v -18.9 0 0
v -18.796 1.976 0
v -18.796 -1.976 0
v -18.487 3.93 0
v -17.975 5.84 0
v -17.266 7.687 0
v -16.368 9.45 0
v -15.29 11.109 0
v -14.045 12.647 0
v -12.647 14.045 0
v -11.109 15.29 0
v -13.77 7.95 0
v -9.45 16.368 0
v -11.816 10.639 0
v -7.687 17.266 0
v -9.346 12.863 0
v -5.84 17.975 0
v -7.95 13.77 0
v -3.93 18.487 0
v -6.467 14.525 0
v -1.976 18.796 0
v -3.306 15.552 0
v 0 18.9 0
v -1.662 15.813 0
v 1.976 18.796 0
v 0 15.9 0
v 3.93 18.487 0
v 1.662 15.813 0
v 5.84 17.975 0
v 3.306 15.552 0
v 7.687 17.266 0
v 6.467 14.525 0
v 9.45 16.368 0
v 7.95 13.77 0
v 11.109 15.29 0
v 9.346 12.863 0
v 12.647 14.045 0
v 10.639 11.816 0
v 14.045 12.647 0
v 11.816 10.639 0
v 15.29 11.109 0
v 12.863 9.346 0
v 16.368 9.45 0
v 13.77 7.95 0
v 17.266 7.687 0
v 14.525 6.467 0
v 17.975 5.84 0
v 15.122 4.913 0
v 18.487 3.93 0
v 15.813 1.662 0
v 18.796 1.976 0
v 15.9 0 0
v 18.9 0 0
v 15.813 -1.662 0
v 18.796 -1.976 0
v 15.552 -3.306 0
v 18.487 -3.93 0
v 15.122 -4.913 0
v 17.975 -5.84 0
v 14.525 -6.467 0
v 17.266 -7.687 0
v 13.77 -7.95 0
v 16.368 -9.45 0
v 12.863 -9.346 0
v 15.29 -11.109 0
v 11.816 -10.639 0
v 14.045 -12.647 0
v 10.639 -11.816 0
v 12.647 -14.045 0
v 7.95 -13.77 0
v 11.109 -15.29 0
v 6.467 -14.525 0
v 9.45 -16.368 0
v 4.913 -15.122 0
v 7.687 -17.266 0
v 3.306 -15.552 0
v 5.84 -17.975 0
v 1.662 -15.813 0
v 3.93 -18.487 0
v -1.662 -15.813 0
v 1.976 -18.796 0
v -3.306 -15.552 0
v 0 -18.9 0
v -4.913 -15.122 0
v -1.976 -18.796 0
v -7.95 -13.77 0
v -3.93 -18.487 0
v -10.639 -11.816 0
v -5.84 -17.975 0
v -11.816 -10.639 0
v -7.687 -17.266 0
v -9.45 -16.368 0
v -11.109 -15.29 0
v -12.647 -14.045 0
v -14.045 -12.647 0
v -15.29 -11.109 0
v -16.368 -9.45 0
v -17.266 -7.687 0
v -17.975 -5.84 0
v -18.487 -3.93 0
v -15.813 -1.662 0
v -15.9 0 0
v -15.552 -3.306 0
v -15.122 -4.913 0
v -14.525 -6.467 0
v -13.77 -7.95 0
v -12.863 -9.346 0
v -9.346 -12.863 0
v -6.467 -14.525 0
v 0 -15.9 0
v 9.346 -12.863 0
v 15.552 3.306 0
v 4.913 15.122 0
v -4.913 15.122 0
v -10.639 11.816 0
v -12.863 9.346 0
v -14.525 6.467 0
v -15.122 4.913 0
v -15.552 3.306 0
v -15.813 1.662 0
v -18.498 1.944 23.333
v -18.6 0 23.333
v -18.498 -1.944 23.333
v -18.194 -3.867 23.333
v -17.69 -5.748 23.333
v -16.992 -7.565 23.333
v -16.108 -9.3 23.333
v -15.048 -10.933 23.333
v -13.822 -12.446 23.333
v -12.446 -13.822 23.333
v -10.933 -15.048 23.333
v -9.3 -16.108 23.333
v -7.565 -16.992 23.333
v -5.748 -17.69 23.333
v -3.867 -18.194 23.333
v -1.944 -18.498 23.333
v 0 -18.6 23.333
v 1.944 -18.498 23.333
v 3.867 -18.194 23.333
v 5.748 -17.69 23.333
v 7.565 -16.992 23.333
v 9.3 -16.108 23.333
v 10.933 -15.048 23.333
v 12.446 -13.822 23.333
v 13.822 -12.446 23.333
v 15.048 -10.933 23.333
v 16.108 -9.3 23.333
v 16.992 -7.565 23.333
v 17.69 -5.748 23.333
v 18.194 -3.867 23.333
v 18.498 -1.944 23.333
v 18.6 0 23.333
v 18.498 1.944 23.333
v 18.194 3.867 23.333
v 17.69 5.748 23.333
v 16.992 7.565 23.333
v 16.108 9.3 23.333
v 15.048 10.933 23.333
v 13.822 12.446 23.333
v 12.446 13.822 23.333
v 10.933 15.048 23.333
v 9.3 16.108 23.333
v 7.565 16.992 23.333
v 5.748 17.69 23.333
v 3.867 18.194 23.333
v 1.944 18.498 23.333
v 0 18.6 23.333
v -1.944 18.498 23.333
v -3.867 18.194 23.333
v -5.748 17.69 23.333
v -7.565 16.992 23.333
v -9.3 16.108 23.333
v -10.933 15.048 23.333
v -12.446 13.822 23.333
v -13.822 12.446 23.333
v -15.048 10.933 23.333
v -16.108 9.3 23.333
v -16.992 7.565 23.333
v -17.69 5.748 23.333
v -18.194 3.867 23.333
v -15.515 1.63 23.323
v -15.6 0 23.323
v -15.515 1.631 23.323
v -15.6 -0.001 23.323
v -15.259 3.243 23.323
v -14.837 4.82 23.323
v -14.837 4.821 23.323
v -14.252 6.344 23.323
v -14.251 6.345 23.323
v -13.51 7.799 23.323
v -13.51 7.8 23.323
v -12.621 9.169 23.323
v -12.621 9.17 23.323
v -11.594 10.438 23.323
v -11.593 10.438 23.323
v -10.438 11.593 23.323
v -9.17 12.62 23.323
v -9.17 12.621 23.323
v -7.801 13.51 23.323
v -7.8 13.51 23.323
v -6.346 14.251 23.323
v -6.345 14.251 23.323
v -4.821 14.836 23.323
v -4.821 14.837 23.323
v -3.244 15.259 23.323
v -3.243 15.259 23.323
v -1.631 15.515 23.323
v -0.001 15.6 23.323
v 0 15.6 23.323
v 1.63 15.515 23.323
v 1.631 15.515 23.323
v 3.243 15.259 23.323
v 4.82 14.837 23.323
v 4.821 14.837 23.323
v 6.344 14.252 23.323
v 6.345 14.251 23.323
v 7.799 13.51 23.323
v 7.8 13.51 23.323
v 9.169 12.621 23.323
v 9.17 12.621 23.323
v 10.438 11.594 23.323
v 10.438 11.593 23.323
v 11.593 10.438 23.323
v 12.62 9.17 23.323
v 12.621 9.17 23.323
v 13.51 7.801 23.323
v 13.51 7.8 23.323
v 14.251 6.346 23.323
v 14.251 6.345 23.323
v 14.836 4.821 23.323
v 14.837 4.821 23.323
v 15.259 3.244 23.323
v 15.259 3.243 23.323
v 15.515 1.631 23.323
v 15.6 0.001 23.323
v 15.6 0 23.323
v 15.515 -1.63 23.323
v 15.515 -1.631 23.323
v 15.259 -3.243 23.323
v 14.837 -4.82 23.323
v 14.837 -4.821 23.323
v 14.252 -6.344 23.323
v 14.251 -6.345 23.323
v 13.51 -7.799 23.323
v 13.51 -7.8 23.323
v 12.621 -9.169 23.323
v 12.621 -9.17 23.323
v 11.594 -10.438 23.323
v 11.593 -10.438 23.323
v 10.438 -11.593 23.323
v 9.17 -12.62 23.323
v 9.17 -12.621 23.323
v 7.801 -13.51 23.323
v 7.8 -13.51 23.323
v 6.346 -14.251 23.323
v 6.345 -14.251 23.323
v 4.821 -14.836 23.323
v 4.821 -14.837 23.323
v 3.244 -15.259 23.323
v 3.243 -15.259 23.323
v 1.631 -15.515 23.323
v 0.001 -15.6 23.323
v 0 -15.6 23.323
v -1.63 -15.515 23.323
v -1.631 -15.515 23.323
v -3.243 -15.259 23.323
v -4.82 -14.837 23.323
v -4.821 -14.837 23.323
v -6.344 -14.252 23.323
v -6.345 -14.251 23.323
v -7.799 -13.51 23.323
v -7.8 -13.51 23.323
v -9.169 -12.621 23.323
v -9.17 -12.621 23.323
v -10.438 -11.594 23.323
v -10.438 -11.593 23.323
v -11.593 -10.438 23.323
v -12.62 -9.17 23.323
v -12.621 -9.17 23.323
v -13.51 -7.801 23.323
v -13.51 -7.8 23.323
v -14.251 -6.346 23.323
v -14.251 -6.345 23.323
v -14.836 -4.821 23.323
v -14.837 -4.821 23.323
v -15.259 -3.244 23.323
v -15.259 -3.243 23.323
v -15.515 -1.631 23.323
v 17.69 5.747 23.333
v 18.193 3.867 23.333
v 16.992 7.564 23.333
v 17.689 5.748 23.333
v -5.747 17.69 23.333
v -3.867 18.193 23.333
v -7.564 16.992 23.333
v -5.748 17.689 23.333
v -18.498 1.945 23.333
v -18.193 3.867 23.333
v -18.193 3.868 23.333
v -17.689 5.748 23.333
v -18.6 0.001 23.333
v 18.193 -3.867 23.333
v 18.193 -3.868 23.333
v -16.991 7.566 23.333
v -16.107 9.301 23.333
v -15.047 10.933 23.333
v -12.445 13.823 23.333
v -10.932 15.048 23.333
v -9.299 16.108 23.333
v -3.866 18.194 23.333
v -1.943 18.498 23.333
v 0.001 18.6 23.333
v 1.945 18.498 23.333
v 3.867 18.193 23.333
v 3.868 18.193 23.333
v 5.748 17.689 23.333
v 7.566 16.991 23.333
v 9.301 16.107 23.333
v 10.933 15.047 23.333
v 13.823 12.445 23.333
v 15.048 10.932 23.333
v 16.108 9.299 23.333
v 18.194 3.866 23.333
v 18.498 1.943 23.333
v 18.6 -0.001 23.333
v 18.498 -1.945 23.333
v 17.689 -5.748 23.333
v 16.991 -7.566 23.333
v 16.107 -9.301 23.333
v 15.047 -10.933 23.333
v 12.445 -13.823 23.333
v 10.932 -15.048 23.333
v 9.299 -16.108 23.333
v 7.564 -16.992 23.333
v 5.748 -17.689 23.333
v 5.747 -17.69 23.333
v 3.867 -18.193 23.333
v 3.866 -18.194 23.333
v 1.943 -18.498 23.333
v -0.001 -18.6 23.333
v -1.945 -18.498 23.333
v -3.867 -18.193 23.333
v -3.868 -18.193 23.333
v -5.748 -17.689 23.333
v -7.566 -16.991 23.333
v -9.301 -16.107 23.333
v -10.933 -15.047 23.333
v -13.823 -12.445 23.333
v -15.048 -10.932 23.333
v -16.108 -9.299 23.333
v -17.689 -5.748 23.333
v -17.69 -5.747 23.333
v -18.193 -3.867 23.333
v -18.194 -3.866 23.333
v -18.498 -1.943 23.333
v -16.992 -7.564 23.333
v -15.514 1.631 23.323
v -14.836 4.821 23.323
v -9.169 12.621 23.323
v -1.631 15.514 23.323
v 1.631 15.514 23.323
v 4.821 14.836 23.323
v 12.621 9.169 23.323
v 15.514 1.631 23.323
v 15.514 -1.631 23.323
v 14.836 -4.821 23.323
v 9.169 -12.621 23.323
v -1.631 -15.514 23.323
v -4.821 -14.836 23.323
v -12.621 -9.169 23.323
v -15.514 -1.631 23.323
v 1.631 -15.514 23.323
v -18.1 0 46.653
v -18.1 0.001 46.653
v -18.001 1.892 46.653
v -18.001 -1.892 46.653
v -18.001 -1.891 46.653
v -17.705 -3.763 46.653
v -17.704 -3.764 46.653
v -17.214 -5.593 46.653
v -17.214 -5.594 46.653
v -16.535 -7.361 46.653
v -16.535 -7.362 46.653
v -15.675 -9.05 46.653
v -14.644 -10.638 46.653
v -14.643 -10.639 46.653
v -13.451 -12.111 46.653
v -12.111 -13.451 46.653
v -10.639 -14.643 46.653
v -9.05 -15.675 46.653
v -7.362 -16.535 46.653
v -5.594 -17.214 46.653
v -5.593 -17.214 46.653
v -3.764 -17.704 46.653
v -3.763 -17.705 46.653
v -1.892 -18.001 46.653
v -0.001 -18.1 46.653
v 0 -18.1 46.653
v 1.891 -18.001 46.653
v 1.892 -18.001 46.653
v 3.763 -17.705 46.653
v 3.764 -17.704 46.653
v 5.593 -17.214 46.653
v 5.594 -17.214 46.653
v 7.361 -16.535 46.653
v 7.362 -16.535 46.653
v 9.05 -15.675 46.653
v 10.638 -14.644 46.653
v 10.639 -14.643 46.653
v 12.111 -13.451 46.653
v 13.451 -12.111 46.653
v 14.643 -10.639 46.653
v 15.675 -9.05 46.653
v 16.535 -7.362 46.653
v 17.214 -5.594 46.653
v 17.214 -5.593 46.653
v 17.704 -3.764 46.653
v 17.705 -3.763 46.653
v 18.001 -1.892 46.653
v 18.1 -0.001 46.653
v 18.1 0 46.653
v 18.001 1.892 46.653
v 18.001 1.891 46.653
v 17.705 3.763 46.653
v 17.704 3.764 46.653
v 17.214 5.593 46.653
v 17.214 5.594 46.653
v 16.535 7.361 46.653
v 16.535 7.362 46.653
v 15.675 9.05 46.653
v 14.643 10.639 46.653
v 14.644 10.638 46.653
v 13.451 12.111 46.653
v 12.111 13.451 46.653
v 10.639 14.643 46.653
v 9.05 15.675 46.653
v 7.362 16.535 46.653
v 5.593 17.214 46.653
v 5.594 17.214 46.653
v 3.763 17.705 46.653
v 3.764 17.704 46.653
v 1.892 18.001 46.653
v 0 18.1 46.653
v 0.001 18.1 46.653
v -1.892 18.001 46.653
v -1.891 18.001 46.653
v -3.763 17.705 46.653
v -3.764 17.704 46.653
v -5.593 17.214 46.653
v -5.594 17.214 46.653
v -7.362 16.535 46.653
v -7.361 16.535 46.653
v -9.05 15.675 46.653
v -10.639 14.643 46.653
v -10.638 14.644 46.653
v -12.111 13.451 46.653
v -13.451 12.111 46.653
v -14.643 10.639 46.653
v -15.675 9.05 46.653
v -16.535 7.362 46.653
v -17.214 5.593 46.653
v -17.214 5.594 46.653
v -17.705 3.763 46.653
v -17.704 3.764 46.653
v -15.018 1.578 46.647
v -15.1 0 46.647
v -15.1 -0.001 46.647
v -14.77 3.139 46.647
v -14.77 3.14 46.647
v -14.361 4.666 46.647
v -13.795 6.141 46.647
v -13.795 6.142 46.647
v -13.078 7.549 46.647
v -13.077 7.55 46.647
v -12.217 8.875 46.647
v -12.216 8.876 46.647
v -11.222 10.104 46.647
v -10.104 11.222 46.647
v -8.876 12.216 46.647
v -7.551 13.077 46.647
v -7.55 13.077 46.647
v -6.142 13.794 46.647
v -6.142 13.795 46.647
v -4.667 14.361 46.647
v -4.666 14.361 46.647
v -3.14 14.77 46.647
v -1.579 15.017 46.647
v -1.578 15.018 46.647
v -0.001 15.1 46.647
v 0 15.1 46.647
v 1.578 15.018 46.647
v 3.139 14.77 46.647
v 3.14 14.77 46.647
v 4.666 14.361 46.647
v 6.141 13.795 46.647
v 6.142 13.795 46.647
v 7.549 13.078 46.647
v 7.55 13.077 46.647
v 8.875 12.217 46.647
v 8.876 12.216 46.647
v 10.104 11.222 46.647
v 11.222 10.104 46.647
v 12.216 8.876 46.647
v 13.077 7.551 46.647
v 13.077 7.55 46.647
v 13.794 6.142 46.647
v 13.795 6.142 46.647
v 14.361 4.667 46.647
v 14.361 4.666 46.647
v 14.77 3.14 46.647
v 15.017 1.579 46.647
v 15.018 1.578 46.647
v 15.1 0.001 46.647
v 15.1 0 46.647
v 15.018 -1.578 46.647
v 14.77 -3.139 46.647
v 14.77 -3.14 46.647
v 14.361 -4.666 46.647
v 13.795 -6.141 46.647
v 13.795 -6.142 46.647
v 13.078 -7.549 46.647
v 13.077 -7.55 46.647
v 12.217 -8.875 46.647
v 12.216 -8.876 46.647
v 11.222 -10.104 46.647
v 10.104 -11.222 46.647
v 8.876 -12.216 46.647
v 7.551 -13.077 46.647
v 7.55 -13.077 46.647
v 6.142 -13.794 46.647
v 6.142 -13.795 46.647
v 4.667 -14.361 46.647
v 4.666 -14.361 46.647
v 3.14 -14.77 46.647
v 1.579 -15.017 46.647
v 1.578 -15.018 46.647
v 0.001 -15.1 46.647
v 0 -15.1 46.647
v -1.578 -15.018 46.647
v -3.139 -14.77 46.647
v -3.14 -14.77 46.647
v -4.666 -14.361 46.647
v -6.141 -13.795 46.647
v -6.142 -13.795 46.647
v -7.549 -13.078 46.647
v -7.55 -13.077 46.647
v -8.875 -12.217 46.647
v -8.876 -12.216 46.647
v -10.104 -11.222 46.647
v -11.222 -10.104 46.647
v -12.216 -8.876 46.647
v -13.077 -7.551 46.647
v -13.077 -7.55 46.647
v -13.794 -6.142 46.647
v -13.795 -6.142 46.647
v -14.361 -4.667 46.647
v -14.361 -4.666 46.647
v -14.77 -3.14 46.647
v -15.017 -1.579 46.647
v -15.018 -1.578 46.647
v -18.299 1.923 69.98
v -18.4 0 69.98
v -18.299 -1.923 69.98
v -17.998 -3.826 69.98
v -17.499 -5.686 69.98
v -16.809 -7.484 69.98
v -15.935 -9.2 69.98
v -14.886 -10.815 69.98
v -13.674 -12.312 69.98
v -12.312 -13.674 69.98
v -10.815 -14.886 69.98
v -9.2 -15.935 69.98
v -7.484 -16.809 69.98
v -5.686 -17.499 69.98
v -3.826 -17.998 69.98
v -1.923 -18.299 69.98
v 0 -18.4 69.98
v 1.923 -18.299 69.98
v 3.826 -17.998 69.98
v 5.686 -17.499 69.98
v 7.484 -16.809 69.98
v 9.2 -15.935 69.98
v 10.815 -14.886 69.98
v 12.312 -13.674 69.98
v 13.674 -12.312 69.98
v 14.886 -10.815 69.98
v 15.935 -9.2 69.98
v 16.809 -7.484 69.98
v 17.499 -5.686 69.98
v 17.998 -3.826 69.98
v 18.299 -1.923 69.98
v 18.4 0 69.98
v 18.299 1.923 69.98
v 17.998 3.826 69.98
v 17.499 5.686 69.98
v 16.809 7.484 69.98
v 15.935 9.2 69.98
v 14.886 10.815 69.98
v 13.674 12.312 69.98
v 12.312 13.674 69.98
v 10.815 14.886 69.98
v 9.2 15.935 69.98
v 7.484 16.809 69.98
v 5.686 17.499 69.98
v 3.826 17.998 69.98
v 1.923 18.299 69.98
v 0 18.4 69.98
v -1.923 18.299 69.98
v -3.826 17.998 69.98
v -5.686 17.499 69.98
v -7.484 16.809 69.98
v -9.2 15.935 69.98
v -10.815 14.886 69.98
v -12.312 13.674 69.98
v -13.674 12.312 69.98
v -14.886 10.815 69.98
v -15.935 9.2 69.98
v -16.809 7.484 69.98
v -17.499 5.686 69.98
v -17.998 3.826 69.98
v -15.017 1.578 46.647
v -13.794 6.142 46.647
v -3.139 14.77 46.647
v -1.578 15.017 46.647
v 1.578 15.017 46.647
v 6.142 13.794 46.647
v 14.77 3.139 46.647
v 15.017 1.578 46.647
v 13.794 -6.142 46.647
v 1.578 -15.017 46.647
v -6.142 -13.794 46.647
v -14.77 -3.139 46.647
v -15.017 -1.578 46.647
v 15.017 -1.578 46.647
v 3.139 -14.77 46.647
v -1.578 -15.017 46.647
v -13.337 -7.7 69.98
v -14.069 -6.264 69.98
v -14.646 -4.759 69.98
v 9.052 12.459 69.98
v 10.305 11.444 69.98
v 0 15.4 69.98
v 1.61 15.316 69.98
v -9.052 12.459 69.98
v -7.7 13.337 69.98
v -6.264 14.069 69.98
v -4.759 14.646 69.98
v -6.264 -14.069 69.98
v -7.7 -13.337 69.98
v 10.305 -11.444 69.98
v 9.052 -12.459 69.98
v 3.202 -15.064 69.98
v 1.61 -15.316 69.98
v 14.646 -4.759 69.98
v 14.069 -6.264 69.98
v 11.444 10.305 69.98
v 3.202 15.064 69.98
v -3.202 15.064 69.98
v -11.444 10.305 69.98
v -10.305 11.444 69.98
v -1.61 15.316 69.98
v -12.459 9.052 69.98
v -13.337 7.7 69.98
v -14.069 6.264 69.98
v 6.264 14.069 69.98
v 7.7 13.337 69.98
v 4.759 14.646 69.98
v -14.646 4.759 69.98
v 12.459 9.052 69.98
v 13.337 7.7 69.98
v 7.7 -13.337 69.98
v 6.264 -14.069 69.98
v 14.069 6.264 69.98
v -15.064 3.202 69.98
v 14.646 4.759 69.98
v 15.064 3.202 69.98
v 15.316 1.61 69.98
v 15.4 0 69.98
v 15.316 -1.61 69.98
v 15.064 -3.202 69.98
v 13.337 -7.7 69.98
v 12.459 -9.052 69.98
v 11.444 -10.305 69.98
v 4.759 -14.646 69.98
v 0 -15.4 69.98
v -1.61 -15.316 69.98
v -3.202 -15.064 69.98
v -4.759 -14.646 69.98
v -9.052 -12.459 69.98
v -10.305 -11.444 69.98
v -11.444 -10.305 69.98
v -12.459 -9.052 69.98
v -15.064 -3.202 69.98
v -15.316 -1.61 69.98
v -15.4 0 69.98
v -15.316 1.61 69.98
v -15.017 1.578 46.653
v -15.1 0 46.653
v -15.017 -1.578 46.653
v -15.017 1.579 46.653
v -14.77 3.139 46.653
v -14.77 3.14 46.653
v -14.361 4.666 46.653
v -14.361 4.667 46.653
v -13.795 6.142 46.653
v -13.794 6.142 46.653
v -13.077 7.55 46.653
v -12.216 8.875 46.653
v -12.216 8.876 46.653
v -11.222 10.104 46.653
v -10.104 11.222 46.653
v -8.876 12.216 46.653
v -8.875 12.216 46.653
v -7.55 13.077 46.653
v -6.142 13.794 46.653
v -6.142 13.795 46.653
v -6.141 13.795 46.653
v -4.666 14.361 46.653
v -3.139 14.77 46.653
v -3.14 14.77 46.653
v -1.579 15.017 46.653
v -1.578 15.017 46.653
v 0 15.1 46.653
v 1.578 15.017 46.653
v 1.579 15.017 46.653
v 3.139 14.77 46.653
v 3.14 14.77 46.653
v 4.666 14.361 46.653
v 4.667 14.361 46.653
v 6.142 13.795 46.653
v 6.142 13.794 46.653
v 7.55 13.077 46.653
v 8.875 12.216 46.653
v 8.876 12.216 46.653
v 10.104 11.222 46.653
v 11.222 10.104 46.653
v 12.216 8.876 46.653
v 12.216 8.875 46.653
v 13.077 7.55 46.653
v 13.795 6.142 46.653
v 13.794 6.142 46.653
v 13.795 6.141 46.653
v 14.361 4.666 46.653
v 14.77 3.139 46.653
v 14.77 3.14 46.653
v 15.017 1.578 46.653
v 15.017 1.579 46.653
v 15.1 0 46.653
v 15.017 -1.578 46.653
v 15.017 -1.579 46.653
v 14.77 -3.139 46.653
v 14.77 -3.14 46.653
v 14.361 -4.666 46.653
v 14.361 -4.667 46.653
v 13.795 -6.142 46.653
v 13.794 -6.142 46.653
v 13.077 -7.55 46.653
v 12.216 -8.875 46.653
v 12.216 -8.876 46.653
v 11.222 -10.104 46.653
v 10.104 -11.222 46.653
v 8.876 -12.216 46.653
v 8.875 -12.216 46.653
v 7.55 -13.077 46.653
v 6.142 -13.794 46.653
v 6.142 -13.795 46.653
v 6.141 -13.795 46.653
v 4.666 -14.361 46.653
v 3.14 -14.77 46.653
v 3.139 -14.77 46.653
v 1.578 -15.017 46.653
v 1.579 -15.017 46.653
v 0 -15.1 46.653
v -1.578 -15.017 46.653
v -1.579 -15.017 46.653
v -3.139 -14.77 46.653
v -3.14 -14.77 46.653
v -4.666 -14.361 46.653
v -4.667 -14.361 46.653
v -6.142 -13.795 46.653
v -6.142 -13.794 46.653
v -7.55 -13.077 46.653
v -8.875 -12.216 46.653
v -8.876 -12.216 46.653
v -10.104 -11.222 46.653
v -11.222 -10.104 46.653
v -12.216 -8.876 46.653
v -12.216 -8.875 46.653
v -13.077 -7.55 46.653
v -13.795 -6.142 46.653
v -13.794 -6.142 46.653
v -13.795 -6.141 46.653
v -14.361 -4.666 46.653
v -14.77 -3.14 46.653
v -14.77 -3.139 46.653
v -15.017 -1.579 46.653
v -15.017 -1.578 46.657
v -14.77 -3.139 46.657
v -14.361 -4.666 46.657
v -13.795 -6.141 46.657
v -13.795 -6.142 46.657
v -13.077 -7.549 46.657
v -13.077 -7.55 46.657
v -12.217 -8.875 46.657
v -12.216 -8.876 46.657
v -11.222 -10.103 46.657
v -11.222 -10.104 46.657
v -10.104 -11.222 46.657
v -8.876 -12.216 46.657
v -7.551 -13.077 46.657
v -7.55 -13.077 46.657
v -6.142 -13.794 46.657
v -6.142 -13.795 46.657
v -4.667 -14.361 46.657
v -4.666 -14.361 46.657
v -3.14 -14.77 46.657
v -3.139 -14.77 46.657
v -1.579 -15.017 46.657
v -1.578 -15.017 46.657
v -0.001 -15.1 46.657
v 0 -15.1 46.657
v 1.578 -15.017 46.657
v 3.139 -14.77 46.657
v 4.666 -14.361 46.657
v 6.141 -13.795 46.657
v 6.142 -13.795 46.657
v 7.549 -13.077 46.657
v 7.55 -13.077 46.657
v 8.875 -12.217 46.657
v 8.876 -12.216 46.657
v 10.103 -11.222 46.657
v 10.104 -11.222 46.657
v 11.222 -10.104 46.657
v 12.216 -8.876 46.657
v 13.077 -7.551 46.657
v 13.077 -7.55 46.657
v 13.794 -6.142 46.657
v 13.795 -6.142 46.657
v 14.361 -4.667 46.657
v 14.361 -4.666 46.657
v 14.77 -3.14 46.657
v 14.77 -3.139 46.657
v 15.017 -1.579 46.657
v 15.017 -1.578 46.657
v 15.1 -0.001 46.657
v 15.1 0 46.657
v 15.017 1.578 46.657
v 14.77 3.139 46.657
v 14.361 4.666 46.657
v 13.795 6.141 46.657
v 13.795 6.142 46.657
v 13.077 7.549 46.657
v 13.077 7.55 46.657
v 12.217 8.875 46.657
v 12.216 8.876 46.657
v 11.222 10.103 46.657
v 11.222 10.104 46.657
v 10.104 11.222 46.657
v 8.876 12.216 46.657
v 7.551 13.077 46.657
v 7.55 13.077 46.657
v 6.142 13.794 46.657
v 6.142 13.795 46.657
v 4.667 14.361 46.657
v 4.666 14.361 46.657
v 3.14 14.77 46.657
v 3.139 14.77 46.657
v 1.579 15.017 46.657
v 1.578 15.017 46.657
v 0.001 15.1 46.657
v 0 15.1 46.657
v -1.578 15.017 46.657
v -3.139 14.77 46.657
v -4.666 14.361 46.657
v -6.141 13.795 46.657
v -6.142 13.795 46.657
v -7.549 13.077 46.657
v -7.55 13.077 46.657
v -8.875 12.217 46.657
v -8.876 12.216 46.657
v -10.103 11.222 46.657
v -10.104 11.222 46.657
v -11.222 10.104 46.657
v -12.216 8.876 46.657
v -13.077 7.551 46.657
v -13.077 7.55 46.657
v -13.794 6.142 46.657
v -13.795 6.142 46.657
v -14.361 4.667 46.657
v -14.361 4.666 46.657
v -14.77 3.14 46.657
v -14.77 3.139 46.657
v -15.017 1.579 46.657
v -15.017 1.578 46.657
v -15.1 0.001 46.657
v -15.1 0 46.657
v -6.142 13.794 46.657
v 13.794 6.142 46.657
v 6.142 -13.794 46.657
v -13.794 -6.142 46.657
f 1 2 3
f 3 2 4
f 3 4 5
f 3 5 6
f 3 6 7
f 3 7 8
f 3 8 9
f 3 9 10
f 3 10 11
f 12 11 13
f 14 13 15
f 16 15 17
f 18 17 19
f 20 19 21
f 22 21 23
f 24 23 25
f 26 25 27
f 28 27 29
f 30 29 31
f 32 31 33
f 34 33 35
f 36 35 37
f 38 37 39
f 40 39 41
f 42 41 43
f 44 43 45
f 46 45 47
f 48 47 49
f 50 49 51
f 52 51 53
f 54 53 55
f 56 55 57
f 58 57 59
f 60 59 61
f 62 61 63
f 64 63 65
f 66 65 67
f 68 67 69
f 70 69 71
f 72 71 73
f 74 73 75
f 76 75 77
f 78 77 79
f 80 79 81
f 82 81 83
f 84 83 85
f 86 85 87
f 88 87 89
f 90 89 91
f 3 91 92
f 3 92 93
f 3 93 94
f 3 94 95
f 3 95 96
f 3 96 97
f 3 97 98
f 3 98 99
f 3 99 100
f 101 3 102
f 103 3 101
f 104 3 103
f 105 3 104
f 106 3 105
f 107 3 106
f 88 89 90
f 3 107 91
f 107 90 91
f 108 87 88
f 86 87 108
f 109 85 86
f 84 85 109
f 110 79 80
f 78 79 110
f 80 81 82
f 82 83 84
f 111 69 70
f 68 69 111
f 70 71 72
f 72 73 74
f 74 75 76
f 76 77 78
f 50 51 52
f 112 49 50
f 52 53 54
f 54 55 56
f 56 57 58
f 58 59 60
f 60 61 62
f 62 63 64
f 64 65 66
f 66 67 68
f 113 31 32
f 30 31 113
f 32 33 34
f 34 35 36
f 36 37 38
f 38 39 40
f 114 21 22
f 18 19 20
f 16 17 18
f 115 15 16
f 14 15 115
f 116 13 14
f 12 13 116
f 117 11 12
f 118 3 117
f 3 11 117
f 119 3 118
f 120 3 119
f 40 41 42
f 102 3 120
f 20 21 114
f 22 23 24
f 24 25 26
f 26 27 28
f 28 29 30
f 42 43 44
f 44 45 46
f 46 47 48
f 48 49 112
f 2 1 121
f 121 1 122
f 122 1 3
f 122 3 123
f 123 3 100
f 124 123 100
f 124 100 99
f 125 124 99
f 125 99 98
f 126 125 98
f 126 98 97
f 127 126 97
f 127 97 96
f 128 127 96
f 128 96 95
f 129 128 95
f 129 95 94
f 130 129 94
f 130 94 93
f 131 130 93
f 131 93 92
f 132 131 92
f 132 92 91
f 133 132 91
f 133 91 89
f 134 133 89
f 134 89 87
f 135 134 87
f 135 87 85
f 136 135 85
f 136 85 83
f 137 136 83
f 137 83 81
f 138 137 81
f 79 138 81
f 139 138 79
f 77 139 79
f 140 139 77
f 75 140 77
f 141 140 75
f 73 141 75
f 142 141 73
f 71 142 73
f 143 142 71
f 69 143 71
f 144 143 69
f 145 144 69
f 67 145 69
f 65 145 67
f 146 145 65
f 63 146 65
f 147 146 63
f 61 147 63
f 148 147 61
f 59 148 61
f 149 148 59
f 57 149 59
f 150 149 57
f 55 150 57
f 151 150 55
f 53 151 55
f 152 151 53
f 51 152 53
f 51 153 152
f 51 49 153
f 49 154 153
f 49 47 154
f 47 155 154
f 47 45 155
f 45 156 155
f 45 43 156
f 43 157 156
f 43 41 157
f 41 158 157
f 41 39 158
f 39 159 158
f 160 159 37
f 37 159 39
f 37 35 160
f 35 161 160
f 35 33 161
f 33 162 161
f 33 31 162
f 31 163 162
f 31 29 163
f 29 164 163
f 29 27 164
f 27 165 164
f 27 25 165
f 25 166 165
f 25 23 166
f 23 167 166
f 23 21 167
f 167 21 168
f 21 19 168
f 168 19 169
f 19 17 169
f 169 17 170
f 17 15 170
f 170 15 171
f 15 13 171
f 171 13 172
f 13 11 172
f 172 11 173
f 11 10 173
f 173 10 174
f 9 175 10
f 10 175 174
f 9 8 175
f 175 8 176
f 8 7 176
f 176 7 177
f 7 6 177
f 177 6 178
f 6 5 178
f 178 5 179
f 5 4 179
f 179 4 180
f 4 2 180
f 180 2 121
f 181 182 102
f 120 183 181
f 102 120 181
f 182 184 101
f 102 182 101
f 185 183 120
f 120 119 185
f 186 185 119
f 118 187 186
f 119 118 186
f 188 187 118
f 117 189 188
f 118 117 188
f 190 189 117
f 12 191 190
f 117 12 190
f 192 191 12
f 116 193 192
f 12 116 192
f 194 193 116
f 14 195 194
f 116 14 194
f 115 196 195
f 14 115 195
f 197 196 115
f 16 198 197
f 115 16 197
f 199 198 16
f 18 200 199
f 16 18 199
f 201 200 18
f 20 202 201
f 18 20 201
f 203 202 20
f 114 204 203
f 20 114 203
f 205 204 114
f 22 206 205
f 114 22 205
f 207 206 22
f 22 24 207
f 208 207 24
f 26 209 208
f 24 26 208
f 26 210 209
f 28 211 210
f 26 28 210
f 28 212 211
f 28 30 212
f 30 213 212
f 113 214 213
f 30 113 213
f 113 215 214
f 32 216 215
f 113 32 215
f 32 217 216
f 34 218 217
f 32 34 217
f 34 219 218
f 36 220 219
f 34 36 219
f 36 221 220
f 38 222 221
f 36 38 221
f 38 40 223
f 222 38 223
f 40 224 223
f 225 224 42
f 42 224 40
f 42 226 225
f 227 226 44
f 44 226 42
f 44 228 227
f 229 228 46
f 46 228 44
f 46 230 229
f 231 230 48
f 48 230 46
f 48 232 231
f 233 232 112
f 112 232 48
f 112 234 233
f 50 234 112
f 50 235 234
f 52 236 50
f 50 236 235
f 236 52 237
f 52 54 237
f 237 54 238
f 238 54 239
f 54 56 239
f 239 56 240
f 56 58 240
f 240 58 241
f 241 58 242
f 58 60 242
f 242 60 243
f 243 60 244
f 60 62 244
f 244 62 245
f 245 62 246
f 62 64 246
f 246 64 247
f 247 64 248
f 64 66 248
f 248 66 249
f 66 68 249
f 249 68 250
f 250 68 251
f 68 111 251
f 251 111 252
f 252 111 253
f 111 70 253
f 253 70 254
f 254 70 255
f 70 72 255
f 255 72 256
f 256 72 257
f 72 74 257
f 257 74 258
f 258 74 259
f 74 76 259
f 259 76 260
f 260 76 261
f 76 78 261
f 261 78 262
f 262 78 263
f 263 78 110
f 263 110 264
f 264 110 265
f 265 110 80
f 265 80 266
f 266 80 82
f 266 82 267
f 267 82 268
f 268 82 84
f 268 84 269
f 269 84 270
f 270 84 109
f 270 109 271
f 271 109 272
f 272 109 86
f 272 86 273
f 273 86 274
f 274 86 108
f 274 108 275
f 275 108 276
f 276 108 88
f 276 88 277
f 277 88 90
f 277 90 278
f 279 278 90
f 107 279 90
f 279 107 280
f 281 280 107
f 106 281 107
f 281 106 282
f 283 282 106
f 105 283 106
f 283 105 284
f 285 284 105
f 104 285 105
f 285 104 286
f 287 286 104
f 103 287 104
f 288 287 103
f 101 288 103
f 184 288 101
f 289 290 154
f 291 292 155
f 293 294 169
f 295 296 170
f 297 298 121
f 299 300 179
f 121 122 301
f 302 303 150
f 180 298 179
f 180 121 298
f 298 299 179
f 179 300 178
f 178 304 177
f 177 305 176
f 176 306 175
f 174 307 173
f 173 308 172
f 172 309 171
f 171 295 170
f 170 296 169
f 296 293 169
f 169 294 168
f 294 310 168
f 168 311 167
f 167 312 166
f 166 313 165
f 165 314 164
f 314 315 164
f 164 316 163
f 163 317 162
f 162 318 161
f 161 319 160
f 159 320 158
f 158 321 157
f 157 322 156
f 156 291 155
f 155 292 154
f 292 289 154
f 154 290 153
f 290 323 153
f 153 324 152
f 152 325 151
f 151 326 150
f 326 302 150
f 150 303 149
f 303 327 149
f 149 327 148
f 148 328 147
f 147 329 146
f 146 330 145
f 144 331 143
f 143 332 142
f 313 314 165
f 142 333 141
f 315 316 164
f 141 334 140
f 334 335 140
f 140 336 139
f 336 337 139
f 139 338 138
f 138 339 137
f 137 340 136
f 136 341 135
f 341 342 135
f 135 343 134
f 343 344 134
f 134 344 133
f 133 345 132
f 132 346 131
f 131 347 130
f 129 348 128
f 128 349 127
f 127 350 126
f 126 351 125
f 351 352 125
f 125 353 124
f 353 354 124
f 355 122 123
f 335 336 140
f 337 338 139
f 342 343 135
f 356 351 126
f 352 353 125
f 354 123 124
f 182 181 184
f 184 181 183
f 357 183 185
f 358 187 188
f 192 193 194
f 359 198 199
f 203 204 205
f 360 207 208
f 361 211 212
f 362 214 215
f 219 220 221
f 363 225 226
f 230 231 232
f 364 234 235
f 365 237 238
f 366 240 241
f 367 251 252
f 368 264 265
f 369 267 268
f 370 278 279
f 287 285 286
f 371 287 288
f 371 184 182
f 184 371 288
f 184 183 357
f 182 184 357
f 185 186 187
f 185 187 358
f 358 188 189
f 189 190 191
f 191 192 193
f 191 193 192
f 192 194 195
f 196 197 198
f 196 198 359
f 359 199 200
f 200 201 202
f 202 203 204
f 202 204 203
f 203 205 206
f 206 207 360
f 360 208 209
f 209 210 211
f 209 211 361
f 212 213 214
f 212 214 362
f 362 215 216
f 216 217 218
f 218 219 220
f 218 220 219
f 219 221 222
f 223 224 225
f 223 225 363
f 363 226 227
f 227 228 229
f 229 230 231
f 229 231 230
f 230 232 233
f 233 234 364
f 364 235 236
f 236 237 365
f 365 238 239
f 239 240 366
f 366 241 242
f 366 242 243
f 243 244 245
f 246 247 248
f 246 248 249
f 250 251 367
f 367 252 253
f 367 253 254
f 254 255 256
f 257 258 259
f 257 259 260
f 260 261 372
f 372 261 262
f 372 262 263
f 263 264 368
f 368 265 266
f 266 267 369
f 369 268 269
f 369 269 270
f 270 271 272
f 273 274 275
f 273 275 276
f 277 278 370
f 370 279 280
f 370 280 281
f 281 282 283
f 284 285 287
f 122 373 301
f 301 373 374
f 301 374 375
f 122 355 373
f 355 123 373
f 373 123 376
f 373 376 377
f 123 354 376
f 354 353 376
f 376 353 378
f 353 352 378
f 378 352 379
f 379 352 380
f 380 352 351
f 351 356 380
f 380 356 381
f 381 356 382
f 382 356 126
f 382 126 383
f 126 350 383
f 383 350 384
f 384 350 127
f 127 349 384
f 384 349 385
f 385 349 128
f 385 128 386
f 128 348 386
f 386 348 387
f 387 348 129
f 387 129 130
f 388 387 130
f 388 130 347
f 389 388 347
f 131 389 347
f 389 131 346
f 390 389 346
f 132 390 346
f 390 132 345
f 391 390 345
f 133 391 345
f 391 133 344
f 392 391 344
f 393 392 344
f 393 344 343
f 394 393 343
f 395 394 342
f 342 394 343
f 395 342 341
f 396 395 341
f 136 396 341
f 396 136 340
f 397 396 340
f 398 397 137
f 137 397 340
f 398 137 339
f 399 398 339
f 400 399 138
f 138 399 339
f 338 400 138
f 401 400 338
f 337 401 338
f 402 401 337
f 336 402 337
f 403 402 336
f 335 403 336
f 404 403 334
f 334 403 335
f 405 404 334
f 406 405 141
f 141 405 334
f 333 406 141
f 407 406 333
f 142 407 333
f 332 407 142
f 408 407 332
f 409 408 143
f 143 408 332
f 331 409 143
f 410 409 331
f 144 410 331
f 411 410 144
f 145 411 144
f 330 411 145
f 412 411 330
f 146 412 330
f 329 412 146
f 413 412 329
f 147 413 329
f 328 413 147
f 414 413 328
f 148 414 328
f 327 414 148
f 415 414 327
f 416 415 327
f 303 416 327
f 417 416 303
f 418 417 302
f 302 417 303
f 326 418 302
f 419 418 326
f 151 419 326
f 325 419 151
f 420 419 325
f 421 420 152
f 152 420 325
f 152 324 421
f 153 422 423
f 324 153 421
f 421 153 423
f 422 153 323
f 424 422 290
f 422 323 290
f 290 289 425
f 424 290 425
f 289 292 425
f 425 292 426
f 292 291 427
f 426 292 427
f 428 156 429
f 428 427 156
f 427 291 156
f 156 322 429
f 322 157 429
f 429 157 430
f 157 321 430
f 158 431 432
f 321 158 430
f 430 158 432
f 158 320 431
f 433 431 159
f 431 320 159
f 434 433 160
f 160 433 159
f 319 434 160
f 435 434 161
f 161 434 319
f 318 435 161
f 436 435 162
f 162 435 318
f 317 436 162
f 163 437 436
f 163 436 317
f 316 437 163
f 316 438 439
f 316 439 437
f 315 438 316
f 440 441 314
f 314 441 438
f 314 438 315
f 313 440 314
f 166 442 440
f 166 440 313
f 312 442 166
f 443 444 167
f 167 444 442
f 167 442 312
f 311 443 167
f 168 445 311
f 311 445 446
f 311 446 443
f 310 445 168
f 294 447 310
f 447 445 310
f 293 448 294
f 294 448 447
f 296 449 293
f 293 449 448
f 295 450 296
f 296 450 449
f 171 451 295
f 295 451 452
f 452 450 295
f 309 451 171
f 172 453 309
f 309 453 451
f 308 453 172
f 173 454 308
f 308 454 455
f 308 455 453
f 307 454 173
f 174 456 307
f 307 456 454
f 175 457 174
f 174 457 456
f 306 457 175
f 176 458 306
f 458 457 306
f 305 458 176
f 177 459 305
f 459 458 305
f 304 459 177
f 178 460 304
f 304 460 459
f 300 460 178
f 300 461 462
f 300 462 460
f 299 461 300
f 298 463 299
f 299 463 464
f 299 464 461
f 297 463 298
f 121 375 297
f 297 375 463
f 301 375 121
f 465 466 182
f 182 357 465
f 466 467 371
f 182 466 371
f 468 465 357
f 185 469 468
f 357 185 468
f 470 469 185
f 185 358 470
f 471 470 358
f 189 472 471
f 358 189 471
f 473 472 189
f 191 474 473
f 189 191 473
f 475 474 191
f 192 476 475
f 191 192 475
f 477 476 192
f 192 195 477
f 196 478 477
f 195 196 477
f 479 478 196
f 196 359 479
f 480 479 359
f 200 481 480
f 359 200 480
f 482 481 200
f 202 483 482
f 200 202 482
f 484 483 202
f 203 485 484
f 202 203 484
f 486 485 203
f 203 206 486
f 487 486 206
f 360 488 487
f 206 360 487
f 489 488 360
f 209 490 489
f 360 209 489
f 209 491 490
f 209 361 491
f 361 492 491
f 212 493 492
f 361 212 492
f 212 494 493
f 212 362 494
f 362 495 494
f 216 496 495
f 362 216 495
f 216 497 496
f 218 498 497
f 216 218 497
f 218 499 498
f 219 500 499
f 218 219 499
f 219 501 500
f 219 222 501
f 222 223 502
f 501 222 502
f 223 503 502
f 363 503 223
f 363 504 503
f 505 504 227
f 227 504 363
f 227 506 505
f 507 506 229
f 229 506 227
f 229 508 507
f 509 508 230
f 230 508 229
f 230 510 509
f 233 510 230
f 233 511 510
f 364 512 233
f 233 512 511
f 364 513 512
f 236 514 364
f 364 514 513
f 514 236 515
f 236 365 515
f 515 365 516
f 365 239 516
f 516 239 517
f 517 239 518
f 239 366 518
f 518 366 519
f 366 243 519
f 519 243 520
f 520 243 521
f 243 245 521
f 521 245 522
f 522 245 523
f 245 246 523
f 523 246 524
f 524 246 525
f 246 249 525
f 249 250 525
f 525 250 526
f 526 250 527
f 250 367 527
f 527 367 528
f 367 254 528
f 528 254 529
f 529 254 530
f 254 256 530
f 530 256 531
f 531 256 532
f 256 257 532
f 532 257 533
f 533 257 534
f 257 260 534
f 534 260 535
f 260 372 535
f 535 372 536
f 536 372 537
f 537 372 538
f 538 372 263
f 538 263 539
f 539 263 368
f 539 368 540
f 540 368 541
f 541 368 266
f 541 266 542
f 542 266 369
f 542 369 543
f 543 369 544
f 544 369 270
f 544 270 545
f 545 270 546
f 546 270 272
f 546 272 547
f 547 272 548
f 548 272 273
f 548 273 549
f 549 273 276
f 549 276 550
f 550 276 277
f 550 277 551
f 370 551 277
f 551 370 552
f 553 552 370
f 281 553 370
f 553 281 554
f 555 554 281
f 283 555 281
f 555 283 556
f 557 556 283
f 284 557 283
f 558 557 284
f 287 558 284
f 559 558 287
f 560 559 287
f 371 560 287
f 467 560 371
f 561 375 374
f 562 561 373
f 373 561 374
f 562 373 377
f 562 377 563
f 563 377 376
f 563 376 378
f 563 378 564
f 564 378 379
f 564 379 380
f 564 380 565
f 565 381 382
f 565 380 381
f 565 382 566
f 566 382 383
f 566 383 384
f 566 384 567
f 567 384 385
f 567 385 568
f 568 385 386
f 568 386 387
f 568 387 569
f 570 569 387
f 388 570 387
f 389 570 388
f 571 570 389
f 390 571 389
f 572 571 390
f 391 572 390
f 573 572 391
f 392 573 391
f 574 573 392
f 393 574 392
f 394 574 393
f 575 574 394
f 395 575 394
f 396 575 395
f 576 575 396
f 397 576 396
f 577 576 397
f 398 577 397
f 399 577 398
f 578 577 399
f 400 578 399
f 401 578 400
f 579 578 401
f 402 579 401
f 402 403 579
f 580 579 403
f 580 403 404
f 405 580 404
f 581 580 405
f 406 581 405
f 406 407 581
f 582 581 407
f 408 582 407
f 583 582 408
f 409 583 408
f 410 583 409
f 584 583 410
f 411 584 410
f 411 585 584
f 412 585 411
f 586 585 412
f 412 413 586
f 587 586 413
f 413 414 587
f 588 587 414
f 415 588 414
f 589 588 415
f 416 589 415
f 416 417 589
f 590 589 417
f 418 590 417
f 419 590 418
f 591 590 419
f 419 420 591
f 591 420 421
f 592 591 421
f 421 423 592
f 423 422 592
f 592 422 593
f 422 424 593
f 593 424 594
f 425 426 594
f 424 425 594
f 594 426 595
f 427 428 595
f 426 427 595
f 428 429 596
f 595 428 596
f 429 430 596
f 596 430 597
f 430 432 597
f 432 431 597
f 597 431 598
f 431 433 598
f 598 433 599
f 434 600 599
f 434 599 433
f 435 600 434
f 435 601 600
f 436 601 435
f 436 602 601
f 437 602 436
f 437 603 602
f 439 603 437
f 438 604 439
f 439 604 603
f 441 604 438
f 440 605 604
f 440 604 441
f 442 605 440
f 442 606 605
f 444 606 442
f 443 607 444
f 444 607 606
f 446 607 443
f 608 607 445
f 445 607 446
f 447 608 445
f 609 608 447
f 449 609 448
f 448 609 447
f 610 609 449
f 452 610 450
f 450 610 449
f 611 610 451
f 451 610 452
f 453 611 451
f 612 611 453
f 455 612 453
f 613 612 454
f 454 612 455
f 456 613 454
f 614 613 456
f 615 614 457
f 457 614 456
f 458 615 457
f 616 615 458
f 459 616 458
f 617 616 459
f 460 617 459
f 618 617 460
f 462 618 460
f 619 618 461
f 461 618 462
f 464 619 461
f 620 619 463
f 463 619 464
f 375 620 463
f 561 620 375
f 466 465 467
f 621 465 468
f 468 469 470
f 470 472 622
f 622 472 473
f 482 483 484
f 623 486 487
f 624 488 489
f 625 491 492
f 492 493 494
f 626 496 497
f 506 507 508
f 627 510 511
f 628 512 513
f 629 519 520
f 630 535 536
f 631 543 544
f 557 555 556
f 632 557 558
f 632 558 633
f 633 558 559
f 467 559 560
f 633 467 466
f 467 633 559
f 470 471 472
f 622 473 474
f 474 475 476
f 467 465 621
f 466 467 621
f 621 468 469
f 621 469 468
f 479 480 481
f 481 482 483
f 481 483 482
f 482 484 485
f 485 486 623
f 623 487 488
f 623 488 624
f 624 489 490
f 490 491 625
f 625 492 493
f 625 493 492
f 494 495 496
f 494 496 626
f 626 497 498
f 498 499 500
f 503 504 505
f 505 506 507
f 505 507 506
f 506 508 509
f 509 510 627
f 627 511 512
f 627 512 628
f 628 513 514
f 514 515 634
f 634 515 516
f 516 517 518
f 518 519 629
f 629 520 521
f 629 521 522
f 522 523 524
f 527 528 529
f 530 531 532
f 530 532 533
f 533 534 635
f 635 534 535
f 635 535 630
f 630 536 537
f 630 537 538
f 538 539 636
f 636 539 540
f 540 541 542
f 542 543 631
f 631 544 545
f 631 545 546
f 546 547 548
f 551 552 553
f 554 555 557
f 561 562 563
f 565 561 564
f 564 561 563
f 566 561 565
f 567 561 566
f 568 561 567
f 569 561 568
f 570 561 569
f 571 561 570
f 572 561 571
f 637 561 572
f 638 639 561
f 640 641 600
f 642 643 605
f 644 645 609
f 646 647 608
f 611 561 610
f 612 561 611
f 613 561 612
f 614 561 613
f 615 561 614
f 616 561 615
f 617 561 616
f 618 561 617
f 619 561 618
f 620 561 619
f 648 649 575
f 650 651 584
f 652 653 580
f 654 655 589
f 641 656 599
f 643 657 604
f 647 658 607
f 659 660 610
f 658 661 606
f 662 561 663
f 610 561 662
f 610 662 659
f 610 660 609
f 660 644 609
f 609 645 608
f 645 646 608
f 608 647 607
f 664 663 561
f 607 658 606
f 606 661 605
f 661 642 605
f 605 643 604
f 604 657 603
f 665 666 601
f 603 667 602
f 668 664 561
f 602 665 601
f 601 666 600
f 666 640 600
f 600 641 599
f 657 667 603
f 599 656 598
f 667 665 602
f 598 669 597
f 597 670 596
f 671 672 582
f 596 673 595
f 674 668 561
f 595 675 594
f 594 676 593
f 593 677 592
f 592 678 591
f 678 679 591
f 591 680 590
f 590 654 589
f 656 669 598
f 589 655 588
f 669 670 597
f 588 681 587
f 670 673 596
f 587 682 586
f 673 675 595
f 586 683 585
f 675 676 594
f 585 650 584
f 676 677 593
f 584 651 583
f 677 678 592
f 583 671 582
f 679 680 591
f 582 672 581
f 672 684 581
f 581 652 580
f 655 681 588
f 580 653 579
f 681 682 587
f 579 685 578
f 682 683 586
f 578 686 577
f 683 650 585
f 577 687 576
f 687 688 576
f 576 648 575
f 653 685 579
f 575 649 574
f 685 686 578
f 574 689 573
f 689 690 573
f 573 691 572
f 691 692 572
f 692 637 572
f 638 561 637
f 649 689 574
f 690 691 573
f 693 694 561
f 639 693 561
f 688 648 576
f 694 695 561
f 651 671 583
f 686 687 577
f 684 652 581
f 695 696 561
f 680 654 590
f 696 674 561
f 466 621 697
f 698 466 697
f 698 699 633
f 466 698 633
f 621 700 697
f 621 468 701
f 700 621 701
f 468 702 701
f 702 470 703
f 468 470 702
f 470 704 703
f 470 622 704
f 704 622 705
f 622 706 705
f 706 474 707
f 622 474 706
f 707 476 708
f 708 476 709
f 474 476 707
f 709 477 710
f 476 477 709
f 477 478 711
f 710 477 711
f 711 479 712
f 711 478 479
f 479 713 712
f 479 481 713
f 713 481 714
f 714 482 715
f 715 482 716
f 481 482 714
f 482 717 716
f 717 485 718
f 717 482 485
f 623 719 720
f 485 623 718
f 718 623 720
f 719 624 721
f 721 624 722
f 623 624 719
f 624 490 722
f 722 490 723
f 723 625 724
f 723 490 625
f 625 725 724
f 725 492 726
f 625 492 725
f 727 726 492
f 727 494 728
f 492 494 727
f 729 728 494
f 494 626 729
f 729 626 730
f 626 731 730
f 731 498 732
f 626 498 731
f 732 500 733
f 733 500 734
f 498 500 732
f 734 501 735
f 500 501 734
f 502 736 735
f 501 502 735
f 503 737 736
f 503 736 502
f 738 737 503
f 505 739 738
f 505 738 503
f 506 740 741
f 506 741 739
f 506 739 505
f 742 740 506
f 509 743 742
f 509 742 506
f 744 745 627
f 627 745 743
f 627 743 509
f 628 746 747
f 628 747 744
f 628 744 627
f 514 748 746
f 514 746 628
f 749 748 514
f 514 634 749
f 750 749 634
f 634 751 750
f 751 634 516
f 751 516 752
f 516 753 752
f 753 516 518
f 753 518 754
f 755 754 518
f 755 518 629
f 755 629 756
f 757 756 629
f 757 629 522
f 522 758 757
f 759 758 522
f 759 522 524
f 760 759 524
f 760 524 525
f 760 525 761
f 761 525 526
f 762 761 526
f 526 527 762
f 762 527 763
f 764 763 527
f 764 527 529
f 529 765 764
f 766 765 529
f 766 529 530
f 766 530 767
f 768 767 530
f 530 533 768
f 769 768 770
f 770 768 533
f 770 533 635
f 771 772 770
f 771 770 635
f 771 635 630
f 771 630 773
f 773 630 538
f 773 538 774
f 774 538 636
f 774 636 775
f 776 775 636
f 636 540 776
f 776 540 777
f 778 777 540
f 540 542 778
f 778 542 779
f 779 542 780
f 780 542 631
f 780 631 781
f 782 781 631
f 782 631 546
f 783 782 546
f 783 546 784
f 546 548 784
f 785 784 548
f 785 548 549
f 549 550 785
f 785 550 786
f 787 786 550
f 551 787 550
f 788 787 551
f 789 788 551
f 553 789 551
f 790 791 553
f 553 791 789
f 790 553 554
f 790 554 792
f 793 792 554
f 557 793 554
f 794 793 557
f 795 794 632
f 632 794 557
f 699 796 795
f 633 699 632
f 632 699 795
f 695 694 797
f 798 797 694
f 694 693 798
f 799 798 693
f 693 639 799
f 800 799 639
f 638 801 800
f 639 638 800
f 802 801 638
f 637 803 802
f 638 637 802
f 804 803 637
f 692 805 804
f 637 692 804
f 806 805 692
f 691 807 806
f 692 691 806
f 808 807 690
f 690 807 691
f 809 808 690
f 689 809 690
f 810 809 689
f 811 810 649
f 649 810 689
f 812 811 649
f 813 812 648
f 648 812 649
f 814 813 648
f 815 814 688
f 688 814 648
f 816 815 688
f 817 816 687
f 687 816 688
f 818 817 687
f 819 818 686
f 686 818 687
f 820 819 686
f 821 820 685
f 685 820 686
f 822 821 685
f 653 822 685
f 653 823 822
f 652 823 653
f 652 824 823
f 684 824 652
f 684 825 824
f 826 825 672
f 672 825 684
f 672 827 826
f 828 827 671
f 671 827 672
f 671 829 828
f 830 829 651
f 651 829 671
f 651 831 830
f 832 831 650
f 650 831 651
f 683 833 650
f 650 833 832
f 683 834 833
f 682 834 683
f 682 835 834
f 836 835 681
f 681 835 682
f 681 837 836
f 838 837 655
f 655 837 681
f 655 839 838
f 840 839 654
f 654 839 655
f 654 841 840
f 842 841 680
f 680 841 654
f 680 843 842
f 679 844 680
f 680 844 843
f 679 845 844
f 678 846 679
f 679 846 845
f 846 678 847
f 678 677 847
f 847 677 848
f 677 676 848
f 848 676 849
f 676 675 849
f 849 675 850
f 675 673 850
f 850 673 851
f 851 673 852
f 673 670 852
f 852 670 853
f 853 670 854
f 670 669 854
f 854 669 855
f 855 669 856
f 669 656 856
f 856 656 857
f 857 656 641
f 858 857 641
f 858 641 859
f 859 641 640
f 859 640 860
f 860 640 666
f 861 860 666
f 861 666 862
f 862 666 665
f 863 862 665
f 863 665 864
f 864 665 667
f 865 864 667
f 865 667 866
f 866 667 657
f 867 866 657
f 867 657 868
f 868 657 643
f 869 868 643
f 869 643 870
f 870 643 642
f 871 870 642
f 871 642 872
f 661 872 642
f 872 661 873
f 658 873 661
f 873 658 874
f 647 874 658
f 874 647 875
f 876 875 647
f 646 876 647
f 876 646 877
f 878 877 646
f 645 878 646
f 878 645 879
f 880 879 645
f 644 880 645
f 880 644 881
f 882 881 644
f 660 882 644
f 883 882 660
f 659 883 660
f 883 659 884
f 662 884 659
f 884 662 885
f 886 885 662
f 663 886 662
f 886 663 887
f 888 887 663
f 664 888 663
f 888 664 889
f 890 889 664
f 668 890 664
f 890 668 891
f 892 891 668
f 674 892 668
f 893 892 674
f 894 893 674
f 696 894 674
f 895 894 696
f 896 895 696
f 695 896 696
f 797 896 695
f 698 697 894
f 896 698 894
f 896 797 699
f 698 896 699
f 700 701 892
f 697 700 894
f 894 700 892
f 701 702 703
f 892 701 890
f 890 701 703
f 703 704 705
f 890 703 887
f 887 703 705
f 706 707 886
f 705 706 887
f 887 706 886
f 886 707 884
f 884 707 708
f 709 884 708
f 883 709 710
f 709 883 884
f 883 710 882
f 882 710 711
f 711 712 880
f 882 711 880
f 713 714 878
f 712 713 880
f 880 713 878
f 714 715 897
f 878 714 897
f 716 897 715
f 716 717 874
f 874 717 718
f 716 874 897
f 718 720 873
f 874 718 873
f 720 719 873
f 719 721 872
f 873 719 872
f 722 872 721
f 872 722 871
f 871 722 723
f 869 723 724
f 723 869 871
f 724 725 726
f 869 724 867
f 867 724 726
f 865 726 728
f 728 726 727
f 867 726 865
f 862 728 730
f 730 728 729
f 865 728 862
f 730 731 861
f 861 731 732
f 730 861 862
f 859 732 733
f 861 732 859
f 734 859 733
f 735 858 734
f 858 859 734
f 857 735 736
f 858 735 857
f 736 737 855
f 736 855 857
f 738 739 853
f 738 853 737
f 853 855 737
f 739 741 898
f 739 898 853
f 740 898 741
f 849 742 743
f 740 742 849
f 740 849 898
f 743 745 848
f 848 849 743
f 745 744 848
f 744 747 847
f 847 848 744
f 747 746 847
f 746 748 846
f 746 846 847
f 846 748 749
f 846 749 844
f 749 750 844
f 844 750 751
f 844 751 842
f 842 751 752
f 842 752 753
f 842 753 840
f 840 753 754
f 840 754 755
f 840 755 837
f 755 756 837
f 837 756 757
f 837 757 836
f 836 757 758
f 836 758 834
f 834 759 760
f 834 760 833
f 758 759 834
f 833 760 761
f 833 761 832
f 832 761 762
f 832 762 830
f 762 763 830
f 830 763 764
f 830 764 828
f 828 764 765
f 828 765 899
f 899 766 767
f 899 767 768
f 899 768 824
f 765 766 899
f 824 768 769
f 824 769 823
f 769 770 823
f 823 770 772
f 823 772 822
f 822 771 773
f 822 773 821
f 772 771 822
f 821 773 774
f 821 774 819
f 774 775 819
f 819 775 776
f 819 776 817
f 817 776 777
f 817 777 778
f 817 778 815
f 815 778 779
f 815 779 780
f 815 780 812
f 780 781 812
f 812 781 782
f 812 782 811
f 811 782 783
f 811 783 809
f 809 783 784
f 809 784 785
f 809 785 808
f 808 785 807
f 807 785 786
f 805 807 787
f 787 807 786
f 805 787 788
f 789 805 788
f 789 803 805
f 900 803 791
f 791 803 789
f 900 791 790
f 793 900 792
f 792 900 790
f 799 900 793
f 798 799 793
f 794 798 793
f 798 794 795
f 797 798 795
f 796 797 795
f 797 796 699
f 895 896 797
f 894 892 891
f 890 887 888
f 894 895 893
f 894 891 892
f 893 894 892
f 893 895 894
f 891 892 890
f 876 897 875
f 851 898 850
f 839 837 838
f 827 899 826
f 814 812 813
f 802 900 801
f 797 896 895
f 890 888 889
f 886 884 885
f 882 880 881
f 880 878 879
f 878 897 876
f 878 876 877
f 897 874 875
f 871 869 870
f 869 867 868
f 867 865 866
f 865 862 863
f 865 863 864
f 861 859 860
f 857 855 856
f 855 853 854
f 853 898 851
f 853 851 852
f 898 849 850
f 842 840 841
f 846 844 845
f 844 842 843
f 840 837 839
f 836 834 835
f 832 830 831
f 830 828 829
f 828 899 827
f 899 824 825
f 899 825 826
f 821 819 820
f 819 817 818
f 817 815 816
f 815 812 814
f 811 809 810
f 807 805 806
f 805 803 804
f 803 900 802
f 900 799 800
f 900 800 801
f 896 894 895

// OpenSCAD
// Global Parameters
outer_diameter_max = 31.8; // Vacuum cleaner end goes into this
outer_diameter_min = 31.2;
inner_diameter_min = 30.2; // End goes onto tool end
inner_diameter_max = 30.8;
length             = 70;
thickness          = 3;
precision          = 60;

module innerattachment() {

    difference() {

        // Things that exist
        union() {
            cylinder( h = length/3, r1 = inner_diameter_min/2 + thickness, r2 = inner_diameter_max/2 + thickness, $fs = 6, $fn = precision, center = false );
        }

        // Things to be cut out
        union() {
            cylinder( h = length/3, r1 = inner_diameter_min/2, r2 = inner_diameter_max/2, $fs = 6, $fn = precision, center = false );
        }
    }

}

module midattachment() {

    difference() {

        // Things that exist
        union() {
            cylinder( h = length/3, r1 = outer_diameter_min/2 + thickness, r2 = inner_diameter_min/2 + thickness, $fs = 6, $fn = precision, center = false );
        }

        // Things to be cut out
        union() {
            cylinder( h = length/3, r1 = outer_diameter_min/2, r2 = inner_diameter_min/2, $fs = 6, $fn = precision, center = false );
        }
    }

}

module outerattachment() {

    difference() {

        // Things that exist
        union() {
            cylinder( h = length/3, r1 = outer_diameter_max/2 + thickness, r2 = outer_diameter_min/2 + thickness, $fs = 6, $fn = precision, center = false );
        }

        // Things to be cut out
        union() {
            cylinder( h = length/3, r1 = outer_diameter_max/2, r2 = outer_diameter_min/2, $fs = 6, $fn = precision, center = false );
        }
    }

}

module vacuumattachment() {
    union() {
        outerattachment();
        translate( v = [0, 0, length/3 - 0.01]) midattachment();
        translate( v = [0, 0, length/3*2 - 0.02]) innerattachment();
    }
}

vacuumattachment();
